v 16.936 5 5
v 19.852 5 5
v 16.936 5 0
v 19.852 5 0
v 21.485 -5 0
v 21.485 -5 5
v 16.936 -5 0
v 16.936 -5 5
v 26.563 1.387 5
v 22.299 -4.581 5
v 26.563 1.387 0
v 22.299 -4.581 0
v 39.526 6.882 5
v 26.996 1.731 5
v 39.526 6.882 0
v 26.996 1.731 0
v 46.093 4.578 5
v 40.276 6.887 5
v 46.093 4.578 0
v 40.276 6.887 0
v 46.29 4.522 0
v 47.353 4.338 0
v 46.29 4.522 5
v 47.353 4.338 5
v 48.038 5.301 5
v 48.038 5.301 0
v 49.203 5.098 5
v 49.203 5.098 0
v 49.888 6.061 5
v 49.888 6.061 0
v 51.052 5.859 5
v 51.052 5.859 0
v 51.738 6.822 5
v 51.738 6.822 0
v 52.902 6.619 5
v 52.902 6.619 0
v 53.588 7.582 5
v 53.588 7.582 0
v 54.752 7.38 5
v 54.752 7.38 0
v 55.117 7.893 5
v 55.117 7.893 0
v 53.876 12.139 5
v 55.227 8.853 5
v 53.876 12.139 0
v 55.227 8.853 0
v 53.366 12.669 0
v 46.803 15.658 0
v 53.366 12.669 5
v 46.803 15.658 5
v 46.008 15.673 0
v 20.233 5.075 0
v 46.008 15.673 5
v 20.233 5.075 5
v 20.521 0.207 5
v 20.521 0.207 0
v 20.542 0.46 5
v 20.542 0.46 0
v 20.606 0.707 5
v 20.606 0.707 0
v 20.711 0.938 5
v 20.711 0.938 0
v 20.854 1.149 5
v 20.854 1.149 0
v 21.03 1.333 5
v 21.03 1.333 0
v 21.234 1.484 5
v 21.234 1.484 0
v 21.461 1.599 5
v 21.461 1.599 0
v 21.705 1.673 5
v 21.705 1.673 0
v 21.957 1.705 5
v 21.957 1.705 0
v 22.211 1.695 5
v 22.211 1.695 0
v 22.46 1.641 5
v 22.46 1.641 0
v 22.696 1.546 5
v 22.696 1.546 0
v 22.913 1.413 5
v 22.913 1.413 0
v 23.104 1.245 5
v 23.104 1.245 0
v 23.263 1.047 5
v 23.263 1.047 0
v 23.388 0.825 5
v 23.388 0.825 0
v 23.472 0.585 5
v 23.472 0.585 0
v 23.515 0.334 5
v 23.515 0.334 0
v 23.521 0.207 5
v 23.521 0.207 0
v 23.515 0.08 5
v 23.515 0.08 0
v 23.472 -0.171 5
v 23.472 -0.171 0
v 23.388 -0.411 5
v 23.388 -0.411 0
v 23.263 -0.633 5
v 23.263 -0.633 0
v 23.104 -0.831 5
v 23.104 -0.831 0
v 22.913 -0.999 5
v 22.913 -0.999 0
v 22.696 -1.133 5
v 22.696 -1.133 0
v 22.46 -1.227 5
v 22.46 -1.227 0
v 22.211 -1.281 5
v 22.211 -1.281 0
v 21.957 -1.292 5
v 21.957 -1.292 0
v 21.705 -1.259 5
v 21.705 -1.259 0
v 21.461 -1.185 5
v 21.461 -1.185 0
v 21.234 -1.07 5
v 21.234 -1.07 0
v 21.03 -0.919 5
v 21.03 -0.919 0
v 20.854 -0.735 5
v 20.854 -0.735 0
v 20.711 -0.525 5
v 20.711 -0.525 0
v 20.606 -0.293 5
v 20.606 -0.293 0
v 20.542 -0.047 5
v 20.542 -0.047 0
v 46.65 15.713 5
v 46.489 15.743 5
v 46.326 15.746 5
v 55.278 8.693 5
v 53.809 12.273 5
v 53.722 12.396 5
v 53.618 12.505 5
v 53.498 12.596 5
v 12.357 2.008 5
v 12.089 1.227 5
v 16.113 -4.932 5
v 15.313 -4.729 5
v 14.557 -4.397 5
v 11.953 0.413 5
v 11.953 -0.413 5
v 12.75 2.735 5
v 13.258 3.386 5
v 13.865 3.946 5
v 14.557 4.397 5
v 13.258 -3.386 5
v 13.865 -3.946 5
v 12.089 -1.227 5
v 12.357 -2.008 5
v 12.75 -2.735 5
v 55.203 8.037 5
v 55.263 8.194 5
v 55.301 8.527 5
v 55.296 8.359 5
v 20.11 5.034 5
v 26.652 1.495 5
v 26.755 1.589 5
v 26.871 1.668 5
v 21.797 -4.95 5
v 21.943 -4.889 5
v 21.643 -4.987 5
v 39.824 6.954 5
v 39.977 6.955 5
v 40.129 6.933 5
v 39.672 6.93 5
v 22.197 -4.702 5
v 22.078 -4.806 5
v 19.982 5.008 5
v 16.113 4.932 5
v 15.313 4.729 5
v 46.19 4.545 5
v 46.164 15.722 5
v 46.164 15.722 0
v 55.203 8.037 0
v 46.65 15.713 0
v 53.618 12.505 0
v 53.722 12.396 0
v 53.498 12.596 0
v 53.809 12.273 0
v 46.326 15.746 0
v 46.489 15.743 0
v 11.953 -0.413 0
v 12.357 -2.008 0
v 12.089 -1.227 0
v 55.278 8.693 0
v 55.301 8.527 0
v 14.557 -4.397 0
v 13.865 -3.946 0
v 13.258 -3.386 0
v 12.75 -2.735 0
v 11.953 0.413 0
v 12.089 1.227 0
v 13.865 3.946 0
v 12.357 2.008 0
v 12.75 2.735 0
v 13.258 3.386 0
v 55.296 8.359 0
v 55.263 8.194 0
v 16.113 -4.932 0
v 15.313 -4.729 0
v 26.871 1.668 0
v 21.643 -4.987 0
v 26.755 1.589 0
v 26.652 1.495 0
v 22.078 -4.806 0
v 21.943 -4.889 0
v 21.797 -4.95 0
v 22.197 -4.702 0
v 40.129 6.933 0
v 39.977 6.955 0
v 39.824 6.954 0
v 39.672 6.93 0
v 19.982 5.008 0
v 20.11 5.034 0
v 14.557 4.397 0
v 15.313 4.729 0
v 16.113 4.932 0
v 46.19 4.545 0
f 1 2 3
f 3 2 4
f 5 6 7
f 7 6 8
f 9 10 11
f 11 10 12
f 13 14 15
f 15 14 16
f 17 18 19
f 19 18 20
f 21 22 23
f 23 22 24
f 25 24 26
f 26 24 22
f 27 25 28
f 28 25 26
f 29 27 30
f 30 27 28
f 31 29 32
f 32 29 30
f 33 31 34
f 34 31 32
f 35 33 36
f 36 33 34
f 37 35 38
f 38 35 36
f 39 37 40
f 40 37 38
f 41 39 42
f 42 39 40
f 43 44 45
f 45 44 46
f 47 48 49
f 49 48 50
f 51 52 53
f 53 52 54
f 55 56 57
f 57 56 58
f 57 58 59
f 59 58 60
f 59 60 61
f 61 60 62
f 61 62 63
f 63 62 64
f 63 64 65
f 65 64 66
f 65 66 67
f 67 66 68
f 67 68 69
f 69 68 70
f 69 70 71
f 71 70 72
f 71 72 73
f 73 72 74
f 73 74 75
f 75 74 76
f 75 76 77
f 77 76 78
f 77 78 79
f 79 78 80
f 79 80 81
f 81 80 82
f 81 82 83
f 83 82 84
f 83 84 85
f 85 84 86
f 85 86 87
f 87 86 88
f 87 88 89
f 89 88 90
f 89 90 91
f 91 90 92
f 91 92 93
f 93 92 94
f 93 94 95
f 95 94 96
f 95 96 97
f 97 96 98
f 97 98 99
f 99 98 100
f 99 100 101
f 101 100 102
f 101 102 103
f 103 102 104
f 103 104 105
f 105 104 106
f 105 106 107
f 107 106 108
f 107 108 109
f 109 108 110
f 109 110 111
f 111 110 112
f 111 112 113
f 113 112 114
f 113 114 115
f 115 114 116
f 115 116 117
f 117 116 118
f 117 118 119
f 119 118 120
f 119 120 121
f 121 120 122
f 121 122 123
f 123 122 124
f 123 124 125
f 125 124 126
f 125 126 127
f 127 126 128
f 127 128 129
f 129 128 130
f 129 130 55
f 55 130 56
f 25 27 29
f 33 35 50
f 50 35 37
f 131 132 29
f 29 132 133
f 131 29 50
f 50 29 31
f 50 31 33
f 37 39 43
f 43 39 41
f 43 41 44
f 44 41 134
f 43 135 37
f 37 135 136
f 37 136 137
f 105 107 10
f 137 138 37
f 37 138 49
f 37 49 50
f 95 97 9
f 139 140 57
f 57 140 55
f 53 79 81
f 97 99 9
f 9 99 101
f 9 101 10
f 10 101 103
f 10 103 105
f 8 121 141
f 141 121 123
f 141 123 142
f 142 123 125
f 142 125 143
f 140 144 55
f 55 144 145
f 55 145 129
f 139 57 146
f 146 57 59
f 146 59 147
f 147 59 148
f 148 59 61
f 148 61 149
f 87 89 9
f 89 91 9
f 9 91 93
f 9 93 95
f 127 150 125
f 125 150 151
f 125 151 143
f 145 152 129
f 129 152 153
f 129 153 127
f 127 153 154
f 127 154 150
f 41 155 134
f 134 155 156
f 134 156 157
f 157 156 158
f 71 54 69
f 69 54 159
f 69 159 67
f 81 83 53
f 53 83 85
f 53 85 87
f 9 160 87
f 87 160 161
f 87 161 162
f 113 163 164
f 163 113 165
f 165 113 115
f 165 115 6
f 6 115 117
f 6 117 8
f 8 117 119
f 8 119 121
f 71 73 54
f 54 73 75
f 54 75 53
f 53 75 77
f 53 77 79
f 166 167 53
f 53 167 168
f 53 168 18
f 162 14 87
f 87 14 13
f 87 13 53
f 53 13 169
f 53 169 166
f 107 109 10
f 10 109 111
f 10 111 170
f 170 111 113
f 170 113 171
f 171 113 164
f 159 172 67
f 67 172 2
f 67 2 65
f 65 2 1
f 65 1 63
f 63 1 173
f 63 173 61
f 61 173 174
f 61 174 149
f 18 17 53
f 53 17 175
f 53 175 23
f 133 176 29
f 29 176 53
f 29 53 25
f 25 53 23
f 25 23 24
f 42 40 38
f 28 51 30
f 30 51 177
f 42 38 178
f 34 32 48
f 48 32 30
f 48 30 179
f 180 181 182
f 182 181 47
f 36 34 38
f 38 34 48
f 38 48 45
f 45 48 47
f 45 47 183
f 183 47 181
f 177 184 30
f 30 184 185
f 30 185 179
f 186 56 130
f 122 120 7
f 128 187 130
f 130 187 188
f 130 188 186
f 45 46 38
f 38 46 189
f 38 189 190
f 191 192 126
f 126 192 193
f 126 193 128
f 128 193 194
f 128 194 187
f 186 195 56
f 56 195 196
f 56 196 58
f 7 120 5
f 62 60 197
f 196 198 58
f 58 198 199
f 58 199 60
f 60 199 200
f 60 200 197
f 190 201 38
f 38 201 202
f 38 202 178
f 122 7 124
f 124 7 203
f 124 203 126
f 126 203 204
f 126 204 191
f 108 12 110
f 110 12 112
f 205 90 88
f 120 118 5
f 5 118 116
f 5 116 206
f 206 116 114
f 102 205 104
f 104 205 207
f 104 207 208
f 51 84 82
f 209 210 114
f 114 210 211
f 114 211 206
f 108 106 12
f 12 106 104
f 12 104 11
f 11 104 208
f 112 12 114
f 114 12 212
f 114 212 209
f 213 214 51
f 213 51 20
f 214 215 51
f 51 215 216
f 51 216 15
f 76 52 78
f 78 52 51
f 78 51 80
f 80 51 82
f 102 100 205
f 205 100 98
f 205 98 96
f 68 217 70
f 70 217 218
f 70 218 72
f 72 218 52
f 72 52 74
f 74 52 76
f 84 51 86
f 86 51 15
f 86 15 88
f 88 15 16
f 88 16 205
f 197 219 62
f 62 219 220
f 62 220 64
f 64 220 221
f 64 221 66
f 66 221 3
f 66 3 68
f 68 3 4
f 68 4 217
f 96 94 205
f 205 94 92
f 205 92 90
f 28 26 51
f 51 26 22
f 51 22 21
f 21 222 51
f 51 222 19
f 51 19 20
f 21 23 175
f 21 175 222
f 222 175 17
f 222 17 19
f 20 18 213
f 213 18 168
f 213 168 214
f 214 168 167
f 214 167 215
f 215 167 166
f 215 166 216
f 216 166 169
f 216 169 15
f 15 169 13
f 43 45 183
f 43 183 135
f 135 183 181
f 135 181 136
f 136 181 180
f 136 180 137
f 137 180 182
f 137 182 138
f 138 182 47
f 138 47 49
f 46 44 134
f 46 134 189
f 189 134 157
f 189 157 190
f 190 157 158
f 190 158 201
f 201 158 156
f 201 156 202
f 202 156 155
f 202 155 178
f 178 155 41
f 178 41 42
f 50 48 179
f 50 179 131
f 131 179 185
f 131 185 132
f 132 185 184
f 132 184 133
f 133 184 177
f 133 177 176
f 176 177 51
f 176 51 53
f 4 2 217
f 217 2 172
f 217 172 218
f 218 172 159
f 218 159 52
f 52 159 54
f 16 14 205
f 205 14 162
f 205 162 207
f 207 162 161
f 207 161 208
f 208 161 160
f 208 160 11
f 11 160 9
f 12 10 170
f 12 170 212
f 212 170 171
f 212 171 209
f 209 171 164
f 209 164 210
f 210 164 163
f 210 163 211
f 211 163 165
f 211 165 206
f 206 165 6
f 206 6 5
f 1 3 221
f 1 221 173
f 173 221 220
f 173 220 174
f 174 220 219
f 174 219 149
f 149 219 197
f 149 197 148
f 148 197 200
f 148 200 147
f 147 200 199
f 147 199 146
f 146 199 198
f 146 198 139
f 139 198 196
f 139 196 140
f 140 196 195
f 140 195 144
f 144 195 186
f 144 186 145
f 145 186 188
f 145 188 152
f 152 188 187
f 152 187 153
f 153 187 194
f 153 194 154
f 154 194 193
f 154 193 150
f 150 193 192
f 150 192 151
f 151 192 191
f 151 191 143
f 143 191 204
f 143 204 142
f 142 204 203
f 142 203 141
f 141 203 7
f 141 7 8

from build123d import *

# Parameters (mm, degrees)
SKETCH1_R           = 1.5
BOSS_EXTRUDE3_DEPTH = 5
FILLET1_R           = 1
CUT_EXTRUDE2_DEPTH  = 5


with BuildPart() as part:
    # Sketch1 → Boss-Extrude3 (new body)
    with BuildSketch(Plane.XY):
        with BuildLine():
            Line((20.05, 5), (0, 5))
            ThreePointArc((0, 5), (-5, 0), (0, -5))
            Line((0, -5), (22, -5))
            Line((22, -5), (26.72989842, 1.621129525))
            Line((26.72989842, 1.621129525), (39.900164389, 7.036080522))
            Line((39.900164389, 7.036080522), (46.188488025, 4.540007042))
            Line((46.188488025, 4.540007042), (47.352932204, 4.337597171))
            Line((47.352932204, 4.337597171), (48.038244482, 5.300533868))
            Line((48.038244482, 5.300533868), (49.20268866, 5.098123997))
            Line((49.20268866, 5.098123997), (49.888000938, 6.061060693))
            Line((49.888000938, 6.061060693), (51.052445116, 5.858650822))
            Line((51.052445116, 5.858650822), (51.737757394, 6.821587519))
            Line((51.737757394, 6.821587519), (52.902201573, 6.619177648))
            Line((52.902201573, 6.619177648), (53.587513851, 7.582114344))
            Line((53.587513851, 7.582114344), (54.751958029, 7.379704473))
            Line((54.751958029, 7.379704473), (55.437270307, 8.34264117))
            Line((55.437270307, 8.34264117), (53.72608495, 12.504593197))
            Line((53.72608495, 12.504593197), (46.409029503, 15.837507263))
            Line((46.409029503, 15.837507263), (20.05, 5))
        make_face()
        Circle(SKETCH1_R, mode=Mode.SUBTRACT)
        with Locations((22.020705275, 0.206842568)):
            Circle(SKETCH1_R, mode=Mode.SUBTRACT)
    extrude(amount=BOSS_EXTRUDE3_DEPTH)

    # Fillet1
    fillet1_edges = [part.edges().sort_by_distance(p)[0] for p in [
        (22, -5, 2.5),
        (20.05, 5, 2.5),
        (46.409029503, 15.837507263, 2.5),
        (53.72608495, 12.504593197, 2.5),
        (55.437270307, 8.34264117, 2.5),
        (46.188488025, 4.540007042, 2.5),
        (39.900164389, 7.036080522, 2.5),
        (26.72989842, 1.621129525, 2.5),
    ]]
    fillet(fillet1_edges, radius=FILLET1_R)

    # Sketch4 → Cut-Extrude2 (cut)
    with BuildSketch(Plane(origin=(0, 0, 0), x_dir=(-1, 0, 0), z_dir=(0, 0, -1))):
        with BuildLine():
            Line((-16.936286021, -5), (9.167349916, -5))
            Line((9.167349916, -5), (9.167349916, 5))
            Line((9.167349916, 5), (-16.936286021, 5))
            ThreePointArc((-16.936286021, 5), (-11.936286021, 0), (-16.936286021, -5))
        make_face()
    extrude(amount=-CUT_EXTRUDE2_DEPTH, mode=Mode.SUBTRACT)


solid = part.part
